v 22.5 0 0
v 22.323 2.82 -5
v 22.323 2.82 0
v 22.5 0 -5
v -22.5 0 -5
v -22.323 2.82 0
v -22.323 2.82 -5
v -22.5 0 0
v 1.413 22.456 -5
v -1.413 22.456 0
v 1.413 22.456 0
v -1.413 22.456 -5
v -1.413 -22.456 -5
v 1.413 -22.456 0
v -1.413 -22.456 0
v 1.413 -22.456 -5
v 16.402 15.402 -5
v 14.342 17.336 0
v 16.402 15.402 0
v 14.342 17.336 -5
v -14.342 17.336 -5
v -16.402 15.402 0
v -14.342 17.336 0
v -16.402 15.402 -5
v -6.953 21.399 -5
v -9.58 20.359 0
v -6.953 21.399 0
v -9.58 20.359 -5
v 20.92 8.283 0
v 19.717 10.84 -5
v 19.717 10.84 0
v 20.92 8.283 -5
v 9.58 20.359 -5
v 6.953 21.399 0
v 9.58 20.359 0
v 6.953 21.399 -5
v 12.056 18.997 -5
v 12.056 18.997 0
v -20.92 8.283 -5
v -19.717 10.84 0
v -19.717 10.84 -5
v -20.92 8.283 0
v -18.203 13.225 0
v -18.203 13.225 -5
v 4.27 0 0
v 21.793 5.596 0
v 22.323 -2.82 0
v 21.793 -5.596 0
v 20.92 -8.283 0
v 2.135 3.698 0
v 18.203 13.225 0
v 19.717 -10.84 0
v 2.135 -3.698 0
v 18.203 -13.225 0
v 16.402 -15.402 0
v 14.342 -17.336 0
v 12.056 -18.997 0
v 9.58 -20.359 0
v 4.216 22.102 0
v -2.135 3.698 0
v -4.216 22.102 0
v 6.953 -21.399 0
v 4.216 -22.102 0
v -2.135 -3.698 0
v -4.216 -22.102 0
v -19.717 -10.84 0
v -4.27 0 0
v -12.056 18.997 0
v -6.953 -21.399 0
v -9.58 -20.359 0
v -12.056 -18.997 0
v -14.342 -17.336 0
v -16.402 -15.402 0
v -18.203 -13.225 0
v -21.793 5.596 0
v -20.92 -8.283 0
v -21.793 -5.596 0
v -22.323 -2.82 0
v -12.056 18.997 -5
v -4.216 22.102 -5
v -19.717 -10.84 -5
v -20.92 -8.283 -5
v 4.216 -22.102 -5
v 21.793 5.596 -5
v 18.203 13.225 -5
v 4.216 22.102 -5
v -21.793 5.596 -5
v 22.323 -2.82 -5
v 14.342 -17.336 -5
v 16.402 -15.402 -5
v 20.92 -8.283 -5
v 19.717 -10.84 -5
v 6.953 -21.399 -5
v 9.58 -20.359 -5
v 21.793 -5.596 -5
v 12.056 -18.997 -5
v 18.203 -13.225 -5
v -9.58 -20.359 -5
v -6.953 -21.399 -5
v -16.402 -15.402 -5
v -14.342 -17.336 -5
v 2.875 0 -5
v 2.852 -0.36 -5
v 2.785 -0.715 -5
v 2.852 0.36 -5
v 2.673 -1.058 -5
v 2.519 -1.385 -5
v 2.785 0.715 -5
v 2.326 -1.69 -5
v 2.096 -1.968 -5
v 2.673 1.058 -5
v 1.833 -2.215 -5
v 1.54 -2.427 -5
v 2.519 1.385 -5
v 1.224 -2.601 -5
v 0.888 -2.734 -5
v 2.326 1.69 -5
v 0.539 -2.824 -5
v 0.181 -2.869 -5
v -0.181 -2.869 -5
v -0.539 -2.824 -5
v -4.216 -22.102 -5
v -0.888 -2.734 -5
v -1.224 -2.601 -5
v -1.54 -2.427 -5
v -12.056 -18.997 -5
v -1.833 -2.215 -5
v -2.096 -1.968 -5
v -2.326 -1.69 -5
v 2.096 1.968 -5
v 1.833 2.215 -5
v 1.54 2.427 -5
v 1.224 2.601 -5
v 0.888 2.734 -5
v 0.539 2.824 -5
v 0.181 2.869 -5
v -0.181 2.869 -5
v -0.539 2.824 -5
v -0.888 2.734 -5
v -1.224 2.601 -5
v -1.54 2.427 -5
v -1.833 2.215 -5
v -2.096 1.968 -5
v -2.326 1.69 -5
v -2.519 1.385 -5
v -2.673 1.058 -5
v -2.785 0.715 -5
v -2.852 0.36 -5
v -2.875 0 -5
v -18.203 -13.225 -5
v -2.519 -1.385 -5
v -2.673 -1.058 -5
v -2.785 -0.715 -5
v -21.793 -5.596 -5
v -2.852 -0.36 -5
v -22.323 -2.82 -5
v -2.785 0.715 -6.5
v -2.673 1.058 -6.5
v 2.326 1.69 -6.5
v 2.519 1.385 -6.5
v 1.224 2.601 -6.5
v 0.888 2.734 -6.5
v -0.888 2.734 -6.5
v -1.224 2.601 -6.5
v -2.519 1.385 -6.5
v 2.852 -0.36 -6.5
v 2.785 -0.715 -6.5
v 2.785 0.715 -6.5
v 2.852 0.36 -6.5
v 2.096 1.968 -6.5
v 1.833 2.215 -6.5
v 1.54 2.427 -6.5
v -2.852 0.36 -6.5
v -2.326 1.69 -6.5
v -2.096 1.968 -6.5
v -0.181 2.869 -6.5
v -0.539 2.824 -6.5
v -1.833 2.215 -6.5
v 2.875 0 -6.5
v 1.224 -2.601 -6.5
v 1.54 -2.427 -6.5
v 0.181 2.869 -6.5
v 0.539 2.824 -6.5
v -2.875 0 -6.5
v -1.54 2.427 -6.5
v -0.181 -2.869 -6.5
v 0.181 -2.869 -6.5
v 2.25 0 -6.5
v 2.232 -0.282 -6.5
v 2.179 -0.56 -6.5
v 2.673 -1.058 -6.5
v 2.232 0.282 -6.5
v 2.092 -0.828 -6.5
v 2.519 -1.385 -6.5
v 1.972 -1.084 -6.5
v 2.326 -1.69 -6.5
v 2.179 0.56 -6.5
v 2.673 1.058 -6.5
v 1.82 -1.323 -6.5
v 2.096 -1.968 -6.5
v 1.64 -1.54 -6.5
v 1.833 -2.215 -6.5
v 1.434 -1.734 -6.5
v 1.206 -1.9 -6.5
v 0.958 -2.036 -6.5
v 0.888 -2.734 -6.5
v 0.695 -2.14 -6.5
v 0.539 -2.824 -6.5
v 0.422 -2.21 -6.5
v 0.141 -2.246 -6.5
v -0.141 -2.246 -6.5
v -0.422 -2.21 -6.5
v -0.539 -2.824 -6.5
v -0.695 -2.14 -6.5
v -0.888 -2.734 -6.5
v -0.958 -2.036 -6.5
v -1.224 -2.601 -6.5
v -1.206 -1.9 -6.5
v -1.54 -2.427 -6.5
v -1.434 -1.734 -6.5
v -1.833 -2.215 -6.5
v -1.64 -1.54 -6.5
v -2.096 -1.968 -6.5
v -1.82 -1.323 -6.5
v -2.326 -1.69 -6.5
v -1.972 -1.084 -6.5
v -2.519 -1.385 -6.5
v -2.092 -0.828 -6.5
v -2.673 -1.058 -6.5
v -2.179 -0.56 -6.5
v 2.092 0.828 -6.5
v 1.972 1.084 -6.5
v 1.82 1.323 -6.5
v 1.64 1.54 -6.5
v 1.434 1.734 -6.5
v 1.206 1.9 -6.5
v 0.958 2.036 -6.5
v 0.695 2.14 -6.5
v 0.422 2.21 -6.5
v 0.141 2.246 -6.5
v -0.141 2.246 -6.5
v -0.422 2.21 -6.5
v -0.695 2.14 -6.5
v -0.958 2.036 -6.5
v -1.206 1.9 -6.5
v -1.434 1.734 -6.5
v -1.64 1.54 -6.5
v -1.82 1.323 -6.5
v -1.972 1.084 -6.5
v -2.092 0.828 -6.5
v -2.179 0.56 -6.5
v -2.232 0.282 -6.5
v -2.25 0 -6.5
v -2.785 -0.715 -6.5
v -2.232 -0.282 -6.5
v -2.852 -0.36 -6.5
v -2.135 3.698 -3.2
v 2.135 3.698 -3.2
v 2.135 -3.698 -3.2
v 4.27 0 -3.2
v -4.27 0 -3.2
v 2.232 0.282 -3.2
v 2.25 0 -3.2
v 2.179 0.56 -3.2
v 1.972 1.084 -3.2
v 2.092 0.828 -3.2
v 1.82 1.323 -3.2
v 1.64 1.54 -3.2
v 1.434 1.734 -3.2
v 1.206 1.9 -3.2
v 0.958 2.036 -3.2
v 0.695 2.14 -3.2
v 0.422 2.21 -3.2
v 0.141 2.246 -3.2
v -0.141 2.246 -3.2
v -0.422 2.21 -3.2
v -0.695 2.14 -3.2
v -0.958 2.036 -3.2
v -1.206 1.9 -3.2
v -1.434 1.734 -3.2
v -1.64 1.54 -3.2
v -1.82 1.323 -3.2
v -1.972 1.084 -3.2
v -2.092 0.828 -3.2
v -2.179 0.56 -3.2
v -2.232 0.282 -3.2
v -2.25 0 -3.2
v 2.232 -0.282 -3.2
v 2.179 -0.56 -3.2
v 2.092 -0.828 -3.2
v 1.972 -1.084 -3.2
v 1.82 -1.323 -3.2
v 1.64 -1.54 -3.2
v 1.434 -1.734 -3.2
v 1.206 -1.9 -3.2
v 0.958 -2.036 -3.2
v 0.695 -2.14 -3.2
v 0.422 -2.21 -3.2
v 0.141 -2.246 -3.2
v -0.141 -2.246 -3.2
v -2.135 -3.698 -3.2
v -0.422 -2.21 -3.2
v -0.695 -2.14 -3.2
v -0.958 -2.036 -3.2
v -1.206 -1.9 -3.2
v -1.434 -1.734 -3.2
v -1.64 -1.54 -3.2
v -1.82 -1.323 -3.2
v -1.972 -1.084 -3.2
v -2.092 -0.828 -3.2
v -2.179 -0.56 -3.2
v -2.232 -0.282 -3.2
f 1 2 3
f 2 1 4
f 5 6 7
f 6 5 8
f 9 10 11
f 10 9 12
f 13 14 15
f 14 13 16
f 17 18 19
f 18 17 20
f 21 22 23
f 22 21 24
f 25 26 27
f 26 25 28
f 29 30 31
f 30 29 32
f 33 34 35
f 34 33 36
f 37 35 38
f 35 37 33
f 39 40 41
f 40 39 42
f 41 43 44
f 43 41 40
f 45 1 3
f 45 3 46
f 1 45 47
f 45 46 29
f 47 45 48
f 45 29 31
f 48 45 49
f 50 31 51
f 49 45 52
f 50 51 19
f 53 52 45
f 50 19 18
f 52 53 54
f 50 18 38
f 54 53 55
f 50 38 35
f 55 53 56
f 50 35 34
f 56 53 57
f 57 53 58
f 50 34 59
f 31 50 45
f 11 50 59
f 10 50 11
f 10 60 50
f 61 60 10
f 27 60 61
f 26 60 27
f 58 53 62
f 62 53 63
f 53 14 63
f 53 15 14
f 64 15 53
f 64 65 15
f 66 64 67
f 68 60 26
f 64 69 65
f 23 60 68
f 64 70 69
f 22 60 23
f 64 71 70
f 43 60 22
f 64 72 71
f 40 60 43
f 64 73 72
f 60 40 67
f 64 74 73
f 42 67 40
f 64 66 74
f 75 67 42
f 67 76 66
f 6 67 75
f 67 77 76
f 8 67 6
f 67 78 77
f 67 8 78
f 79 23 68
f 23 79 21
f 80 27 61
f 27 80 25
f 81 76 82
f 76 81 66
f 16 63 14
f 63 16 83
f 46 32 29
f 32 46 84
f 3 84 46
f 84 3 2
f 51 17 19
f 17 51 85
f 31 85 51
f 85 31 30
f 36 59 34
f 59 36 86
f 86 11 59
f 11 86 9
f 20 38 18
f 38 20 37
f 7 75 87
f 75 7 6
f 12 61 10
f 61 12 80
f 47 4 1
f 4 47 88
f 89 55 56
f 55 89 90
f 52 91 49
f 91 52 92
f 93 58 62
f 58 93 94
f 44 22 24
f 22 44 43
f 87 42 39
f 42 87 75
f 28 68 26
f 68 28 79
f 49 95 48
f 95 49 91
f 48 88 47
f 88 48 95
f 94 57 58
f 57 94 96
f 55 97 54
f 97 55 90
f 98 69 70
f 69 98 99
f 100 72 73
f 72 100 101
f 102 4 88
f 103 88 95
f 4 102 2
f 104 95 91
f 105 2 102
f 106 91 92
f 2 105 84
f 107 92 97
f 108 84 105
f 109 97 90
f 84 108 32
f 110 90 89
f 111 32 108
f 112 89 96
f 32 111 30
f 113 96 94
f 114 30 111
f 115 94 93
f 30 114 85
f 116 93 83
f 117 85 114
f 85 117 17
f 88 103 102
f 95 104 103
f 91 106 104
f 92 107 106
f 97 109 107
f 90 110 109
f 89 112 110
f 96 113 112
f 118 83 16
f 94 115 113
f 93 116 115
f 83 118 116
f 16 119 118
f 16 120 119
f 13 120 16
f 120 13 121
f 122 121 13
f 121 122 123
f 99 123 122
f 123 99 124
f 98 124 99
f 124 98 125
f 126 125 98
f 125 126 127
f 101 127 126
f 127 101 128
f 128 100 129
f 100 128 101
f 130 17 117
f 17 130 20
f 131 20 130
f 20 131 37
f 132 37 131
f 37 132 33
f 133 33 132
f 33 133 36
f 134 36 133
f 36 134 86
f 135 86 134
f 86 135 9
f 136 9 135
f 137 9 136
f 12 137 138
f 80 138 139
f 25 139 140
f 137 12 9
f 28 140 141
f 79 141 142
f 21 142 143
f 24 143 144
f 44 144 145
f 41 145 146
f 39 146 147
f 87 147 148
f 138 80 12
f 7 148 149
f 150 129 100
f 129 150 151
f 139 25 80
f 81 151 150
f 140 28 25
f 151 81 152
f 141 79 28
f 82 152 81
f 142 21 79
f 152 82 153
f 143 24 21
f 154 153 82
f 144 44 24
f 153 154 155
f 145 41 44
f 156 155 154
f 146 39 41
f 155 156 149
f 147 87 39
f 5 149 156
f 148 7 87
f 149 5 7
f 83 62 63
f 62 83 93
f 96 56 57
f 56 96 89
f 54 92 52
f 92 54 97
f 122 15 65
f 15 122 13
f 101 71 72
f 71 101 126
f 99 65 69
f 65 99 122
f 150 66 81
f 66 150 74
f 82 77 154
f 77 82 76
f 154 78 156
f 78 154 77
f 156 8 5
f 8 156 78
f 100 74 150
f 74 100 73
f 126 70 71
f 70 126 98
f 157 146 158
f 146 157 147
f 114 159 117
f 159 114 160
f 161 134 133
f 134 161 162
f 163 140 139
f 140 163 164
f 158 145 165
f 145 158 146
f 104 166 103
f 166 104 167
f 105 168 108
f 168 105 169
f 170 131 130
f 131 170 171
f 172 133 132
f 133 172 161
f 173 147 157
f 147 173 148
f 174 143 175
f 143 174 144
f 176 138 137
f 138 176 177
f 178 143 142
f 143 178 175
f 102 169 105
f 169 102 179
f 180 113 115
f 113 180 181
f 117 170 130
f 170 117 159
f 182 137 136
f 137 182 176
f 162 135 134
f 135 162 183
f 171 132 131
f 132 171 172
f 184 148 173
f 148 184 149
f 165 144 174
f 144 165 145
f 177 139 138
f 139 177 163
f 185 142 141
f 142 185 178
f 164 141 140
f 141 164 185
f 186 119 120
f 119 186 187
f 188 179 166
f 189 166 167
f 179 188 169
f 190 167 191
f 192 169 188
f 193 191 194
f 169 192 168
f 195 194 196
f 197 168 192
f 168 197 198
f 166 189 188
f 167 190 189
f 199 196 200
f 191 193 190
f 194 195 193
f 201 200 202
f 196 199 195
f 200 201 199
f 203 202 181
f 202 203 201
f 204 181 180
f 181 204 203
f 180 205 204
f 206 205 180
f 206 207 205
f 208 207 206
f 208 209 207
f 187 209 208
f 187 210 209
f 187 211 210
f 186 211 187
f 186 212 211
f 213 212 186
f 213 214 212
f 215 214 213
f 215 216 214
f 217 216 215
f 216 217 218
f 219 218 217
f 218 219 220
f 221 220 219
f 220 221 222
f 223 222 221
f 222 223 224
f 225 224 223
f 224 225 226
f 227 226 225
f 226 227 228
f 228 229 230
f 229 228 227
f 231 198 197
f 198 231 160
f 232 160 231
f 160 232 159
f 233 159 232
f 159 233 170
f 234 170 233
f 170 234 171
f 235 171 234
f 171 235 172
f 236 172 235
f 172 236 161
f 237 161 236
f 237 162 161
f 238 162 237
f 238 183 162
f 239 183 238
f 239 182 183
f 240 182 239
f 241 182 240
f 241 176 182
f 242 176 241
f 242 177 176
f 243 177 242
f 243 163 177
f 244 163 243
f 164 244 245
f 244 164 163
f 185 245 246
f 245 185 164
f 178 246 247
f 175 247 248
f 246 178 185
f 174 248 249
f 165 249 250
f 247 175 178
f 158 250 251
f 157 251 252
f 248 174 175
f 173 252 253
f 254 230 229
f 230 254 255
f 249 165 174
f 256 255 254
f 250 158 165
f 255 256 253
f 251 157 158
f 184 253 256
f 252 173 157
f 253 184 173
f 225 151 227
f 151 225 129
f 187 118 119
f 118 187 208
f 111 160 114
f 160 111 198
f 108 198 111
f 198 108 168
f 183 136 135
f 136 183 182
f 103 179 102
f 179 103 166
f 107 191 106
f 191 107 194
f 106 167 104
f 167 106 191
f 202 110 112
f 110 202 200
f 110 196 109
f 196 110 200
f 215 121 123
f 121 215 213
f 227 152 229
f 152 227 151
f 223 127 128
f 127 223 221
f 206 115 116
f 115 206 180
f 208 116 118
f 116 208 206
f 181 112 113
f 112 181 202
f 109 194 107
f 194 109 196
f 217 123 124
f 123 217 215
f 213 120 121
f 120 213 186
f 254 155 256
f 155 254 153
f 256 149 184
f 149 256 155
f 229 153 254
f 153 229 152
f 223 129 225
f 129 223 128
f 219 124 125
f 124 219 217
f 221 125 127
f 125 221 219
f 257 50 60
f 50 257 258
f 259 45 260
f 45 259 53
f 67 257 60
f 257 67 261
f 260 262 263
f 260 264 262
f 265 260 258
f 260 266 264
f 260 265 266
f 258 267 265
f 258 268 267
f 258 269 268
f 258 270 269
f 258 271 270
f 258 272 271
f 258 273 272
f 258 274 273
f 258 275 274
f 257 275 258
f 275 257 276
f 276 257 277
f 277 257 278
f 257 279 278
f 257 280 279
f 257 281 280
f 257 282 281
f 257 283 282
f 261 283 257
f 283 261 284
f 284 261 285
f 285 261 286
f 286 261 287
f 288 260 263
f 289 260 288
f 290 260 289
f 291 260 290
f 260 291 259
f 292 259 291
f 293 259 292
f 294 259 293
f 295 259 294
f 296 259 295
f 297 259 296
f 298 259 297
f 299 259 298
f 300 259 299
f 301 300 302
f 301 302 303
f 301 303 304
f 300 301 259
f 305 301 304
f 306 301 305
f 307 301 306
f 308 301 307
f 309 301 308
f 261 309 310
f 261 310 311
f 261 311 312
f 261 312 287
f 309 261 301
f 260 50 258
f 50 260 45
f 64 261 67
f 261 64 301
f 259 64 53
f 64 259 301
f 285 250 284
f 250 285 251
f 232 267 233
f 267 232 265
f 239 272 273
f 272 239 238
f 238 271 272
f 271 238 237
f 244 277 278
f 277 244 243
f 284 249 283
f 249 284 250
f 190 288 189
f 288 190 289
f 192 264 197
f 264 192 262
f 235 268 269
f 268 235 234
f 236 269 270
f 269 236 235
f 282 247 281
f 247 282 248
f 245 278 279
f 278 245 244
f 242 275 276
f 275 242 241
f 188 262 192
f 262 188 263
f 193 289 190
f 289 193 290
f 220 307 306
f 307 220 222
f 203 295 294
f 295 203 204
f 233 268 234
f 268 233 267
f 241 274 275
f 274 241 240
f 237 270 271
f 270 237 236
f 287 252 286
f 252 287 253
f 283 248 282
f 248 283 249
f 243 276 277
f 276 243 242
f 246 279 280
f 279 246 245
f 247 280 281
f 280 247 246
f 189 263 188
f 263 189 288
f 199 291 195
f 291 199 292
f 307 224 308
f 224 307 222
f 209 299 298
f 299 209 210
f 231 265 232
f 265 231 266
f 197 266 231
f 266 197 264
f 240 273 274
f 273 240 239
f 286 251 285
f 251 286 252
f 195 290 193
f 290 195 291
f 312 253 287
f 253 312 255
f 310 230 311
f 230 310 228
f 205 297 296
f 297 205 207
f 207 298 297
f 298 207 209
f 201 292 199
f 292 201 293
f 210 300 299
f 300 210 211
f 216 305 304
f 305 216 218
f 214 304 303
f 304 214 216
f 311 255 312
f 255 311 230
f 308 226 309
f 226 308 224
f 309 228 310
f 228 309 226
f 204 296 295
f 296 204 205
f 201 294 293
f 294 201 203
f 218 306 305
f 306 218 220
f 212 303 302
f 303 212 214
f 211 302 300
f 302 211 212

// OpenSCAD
$fn = 50;

difference() {
	union() {
		translate(v = [0, 0, -5.0]) {
			cylinder(h = 5.0, r = 22.5);
		}
		#translate(v = [0, 0, -6.5]) {
			cylinder(h = 6.5, r = 2.875);
		}
	}
	union() {
		translate(v = [0, 0, 0]) {
			rotate(a = [0, 0, 0]) {
				difference() {
					union() {
						translate(v = [0, 0, -3.2]) {
							linear_extrude(height = 3.2) {
								polygon(points = [[4.2698, 0.0], [2.1349000000000005, 3.697755269078796], [-2.134899999999999, 3.6977552690787965], [-4.2698, 5.228996902999369e-16], [-2.134900000000002, -3.6977552690787956], [2.1348999999999974, -3.697755269078798]]);
							}
						}
					}
					union();
				}
			}
		}
		#translate(v = [0, 0, -100.0]) {
			cylinder(h = 200, r = 2.25);
		}
	}
}
